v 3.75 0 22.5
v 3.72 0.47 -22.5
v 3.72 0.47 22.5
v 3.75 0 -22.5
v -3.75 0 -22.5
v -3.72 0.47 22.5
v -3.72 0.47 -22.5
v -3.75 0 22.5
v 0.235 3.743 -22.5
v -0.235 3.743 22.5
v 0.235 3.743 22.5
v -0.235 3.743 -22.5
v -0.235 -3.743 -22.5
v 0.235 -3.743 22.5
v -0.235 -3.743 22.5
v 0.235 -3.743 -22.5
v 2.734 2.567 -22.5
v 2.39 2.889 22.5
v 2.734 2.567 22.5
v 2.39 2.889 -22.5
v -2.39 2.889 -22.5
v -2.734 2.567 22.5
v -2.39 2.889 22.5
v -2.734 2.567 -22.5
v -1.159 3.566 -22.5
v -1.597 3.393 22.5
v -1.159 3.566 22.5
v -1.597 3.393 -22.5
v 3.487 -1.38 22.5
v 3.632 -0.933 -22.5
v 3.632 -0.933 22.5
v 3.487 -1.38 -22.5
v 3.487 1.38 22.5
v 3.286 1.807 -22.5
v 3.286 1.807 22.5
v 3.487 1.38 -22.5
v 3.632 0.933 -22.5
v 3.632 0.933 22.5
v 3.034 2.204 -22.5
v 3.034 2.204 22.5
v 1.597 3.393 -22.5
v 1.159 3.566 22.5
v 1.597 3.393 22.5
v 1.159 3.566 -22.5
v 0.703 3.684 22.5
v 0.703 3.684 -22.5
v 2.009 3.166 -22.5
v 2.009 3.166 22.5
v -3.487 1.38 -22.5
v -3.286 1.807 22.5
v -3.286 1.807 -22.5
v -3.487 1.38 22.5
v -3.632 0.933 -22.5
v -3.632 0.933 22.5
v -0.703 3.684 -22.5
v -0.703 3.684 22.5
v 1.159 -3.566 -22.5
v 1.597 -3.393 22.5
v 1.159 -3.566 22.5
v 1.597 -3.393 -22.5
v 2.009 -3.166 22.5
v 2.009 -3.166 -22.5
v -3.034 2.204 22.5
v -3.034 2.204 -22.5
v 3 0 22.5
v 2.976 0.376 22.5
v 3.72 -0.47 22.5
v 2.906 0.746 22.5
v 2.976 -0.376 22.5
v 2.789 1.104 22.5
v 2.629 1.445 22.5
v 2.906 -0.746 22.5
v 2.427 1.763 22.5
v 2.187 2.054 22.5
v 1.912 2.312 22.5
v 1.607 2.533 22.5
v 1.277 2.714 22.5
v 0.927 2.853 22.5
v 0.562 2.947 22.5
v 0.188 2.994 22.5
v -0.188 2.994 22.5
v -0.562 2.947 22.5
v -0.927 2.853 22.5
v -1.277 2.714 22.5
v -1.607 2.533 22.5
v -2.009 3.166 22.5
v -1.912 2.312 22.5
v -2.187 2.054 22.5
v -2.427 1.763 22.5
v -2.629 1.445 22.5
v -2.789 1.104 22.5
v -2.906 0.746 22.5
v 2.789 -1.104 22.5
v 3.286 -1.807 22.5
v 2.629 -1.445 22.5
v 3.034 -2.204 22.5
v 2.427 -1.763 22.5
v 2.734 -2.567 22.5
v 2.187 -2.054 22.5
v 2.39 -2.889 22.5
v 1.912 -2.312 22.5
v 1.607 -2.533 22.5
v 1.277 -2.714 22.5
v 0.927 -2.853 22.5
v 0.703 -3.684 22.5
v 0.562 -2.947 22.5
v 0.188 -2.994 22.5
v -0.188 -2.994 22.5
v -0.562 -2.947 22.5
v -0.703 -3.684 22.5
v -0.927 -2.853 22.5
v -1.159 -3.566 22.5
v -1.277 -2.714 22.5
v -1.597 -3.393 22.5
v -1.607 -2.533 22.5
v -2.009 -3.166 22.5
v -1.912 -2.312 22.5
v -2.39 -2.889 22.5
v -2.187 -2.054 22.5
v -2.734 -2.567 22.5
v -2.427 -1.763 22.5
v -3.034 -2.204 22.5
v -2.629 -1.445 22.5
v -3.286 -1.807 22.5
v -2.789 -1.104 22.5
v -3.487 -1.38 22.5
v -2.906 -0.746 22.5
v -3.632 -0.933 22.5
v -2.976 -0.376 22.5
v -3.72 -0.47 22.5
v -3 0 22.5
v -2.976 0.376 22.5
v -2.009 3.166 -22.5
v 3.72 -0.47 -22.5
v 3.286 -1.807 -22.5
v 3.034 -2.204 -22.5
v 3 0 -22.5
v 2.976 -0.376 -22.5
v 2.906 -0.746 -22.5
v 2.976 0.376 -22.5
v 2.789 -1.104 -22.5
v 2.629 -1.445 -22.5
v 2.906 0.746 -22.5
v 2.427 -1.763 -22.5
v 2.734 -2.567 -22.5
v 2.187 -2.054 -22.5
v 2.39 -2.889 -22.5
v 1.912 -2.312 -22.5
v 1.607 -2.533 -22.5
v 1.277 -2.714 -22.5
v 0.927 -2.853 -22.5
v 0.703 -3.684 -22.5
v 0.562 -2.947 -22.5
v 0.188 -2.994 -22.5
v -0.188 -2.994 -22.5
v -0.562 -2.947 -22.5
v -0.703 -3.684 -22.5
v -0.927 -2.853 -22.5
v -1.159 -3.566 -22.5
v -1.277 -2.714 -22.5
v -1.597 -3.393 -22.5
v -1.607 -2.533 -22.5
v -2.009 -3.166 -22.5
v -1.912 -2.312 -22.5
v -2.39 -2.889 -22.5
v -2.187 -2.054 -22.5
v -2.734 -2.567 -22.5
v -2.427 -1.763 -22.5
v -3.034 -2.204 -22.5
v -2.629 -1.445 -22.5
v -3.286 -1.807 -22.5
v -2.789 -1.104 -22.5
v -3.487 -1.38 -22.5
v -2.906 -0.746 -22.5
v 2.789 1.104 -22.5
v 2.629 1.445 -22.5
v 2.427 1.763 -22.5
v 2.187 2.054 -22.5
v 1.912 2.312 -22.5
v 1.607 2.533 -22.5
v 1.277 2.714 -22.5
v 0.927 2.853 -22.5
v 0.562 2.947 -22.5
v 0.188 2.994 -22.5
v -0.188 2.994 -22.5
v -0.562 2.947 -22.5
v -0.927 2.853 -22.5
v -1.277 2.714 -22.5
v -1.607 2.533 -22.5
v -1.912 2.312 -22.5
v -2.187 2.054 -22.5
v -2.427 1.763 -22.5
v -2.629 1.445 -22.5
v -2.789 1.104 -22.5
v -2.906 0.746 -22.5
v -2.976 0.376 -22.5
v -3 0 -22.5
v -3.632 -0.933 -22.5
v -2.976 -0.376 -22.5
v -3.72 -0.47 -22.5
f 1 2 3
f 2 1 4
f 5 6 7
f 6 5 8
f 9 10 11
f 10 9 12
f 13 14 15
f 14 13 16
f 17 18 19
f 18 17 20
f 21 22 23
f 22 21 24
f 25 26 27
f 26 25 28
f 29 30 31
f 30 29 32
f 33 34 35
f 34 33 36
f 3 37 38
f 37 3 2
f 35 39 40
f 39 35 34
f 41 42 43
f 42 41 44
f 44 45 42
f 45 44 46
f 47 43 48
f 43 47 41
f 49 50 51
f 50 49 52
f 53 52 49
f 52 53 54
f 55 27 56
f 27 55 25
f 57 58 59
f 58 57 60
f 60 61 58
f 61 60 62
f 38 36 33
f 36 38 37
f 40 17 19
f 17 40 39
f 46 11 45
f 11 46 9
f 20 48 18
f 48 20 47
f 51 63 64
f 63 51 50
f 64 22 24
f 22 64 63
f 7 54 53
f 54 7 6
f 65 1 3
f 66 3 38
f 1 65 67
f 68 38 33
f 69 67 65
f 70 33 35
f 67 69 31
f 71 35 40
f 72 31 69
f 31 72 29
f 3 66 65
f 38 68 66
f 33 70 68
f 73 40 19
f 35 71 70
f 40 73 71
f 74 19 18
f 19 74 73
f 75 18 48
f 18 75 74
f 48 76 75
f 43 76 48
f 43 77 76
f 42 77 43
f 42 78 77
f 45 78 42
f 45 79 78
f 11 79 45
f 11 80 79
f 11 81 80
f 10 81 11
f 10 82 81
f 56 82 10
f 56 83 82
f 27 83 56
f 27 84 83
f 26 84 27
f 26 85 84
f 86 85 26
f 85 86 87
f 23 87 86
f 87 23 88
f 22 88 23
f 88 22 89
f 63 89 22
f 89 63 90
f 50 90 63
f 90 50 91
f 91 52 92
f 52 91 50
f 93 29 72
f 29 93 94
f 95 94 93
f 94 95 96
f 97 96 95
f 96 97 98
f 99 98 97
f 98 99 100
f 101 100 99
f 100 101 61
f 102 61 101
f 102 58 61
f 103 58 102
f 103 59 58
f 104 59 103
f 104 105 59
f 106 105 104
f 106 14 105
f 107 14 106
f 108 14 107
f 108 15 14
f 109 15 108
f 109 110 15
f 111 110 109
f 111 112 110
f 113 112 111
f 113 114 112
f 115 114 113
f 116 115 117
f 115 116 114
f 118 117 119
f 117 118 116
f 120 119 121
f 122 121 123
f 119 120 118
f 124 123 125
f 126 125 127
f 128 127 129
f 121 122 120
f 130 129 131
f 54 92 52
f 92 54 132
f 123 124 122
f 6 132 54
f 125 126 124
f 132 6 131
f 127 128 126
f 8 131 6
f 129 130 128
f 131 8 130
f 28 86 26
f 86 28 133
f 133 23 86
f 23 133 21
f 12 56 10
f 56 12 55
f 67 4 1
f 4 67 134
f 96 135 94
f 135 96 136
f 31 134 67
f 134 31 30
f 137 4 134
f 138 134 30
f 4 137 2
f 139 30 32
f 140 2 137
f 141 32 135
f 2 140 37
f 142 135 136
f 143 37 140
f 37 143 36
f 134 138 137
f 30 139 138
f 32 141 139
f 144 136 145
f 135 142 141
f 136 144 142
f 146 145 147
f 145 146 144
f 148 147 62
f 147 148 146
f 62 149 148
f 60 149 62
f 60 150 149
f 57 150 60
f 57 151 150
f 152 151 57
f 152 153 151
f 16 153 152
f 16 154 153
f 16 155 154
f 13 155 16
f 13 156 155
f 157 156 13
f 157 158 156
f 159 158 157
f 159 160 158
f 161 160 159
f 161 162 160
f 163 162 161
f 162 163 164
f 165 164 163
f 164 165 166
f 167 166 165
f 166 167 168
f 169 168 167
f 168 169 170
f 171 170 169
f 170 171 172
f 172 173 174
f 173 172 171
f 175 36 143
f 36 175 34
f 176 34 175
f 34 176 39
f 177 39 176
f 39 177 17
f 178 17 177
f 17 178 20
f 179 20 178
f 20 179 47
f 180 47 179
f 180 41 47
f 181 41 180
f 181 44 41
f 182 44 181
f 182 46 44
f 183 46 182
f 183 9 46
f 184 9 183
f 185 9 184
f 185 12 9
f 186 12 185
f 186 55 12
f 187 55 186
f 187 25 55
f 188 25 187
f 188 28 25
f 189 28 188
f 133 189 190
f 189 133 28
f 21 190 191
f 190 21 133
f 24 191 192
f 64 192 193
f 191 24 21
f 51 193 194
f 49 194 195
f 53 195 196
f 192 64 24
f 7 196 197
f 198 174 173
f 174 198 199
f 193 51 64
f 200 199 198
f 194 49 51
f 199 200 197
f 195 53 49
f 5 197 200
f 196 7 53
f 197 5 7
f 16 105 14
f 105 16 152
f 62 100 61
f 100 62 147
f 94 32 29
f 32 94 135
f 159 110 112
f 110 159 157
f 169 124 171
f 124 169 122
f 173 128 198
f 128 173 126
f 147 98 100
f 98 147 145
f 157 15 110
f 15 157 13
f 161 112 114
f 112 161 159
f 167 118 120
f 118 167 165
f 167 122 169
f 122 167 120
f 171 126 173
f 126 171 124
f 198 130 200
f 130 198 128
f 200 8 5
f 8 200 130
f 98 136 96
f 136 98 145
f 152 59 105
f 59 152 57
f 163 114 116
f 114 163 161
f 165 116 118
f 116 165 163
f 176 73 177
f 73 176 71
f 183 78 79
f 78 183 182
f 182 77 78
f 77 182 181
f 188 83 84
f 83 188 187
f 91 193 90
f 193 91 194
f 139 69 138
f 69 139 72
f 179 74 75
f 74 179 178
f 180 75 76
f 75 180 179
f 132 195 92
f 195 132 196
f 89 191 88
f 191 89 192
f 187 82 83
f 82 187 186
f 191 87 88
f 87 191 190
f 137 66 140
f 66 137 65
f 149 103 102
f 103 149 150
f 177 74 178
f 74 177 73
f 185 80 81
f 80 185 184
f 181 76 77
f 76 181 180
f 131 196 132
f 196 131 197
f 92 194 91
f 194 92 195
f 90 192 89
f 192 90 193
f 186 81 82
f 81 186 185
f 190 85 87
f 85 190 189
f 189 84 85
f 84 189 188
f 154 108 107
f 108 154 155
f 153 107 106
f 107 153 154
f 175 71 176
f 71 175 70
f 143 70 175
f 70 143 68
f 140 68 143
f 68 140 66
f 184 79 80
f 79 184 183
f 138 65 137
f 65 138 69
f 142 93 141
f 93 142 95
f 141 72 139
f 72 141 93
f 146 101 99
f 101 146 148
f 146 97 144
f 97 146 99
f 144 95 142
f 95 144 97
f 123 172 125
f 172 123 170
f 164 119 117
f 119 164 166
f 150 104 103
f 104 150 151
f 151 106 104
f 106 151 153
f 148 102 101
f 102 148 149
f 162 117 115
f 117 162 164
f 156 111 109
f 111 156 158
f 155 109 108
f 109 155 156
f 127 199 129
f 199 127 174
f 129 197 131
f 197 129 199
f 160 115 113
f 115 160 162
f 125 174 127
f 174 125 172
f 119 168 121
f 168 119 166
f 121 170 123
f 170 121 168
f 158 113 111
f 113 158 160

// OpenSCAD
$fn = 50;


difference() {
	union() {
		translate(v = [0, 0, -22.5000000000]) {
			cylinder(h = 45, r = 3.7500000000);
		}
	}
	union() {
		translate(v = [0, 0, -100.0000000000]) {
			cylinder(h = 200, r = 3.0000000000);
		}
	}
}
